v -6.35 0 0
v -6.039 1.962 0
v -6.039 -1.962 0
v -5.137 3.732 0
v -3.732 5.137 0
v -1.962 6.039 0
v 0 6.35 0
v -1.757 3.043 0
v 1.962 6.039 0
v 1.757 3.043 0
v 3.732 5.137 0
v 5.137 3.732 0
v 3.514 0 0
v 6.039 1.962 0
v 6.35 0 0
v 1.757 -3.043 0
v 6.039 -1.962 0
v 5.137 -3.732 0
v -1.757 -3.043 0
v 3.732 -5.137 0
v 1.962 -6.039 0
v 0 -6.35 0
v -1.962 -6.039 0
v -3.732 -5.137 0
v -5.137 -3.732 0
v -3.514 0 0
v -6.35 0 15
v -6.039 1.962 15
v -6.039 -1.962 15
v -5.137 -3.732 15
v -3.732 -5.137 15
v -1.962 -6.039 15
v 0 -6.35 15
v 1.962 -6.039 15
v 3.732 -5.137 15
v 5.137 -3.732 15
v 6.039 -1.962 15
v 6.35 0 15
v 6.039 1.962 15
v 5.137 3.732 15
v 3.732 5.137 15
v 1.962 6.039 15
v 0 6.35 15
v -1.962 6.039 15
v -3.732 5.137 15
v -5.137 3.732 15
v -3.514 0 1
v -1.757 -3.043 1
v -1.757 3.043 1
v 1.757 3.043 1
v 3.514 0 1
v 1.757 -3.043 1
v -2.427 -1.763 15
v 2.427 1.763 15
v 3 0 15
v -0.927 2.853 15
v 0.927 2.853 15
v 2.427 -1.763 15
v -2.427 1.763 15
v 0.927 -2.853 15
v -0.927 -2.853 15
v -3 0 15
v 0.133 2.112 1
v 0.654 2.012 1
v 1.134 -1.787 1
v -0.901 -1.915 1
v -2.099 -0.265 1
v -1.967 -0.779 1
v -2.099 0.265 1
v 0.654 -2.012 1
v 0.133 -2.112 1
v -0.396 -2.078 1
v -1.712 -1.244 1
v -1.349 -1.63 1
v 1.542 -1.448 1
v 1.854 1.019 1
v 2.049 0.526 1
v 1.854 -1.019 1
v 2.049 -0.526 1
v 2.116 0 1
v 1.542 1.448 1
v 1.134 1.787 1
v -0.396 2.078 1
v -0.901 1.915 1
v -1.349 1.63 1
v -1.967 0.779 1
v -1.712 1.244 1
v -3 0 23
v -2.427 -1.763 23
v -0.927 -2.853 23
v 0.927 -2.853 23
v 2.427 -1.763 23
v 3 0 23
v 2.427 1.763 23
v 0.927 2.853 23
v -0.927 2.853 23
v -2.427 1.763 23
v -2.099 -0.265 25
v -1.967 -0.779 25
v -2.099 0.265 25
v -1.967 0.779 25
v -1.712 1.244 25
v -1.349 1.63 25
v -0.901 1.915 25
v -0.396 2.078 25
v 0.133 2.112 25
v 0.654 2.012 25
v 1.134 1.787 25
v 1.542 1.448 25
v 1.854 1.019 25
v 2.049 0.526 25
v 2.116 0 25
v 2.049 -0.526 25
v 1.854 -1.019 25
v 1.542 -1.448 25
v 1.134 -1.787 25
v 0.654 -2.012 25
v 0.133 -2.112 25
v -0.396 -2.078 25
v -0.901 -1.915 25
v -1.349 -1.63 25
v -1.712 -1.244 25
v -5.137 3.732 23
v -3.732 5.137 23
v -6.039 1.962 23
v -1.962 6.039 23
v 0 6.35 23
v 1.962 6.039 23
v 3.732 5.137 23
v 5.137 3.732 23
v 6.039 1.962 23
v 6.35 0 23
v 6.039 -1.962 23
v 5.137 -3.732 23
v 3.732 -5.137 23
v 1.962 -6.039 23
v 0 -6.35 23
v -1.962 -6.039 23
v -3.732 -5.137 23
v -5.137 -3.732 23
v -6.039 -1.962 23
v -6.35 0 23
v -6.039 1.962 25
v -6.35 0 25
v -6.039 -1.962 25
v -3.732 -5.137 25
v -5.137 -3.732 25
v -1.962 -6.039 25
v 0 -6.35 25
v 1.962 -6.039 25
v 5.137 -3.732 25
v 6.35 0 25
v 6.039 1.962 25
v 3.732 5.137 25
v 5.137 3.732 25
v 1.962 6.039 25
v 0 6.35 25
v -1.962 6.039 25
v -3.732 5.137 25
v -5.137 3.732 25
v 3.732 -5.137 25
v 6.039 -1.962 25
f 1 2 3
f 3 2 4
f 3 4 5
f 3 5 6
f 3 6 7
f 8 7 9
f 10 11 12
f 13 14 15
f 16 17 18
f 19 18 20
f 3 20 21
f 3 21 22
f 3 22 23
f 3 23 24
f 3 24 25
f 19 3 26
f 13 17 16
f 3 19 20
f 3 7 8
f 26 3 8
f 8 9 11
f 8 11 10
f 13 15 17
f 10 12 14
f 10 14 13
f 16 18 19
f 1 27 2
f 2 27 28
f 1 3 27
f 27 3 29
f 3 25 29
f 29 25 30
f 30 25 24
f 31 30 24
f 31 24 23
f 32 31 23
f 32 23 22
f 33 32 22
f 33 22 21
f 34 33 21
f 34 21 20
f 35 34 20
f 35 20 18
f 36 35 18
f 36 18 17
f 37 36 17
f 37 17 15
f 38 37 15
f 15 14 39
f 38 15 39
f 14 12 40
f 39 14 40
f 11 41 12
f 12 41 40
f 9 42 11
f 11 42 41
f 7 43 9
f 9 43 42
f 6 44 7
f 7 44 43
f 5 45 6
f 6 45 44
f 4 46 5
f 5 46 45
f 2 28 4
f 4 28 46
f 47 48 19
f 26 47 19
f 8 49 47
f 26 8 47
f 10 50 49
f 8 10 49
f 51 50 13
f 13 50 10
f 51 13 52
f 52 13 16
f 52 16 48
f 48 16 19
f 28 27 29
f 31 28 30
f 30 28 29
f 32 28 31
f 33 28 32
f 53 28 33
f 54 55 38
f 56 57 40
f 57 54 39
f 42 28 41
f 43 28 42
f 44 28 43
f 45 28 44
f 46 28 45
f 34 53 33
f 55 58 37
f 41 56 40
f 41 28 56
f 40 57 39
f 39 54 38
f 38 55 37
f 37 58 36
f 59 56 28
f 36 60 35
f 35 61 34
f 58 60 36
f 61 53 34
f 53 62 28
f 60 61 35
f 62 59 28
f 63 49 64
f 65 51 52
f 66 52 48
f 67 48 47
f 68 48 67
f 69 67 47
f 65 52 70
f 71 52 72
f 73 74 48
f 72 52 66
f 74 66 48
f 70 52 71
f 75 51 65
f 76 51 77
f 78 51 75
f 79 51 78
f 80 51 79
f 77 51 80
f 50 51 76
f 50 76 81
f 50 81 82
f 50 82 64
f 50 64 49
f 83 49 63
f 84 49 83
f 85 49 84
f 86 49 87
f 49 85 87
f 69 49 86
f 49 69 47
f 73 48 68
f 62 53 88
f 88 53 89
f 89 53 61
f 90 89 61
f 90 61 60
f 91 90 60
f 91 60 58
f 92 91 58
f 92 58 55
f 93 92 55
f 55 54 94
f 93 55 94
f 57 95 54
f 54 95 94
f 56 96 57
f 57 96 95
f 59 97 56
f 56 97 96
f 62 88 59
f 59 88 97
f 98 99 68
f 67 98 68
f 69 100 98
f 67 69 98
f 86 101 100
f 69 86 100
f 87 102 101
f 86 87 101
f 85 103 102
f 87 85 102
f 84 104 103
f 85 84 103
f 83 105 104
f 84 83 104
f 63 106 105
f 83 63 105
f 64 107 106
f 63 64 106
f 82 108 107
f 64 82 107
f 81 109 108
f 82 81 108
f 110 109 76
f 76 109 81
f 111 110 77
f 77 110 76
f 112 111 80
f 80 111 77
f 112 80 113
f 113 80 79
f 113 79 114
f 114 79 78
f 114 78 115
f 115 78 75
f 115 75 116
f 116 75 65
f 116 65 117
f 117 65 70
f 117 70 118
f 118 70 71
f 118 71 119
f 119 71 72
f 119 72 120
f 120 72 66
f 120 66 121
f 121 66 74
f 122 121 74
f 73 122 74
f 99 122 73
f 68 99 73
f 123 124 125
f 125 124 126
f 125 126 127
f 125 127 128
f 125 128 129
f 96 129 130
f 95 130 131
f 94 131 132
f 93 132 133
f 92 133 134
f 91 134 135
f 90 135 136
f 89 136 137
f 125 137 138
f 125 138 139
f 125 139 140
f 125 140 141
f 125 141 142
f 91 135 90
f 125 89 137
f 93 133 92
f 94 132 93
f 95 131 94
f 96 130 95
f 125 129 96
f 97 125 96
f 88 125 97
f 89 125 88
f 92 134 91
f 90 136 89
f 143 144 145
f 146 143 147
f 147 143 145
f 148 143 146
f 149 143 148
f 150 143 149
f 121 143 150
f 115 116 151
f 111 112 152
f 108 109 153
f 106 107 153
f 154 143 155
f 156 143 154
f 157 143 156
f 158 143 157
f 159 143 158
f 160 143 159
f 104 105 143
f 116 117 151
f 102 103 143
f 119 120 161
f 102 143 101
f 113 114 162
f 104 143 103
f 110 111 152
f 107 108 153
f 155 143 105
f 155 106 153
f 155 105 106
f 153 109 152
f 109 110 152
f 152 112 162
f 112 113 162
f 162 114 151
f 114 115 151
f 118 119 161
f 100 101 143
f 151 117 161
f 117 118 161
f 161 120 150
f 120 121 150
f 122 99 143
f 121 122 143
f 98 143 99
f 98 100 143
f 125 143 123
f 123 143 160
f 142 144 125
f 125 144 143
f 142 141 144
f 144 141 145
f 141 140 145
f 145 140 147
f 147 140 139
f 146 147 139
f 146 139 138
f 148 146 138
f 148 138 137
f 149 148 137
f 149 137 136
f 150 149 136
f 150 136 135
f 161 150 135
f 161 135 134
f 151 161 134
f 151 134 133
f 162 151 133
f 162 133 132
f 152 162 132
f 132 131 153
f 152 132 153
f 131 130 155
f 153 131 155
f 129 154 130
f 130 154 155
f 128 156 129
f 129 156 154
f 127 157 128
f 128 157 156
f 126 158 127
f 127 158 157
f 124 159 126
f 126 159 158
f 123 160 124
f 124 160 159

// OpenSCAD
// file: myLibs.scad
pi= 3.14159265359;

module hole(diam, height, clearance= 0.1)
{
        fn= round(diam * pi / 0.5);
        cylinder(h= height, r=diam / 2 / cos(180 / fn) + clearance, $fn=fn);
}

module nutTrap(ffd, faces=6, height=1)
{
	cylinder(h= height, r=ffd / cos(180 / faces) / 2 + 0.05, $fn=faces);
}

// A slot which has rounded ends, but total length is l
module slot(d= 4, l= 8, ht= 1, clearance=0.1) {
	fn= round(d * pi / 0.5);
	rd= d / 2 / cos(180 / fn) + clearance;
	d1= rd*2;
	union() {
		translate([0,0,ht/2]) cube([l-d1, d1, ht], center=true);
		translate([-(l-d1)/2, 0, ht/2]) cylinder(h=ht, r=rd, $fn=fn, center=true); 
		translate([(l-d1)/2, 0, ht/2]) cylinder(h=ht, r=rd, $fn=fn, center=true); 
	}
	
}

/**
 * Standard right-angled triangle
 *
 * @param number o_len Lenght of the opposite side
 * @param number a_len Lenght of the adjacent side
 * @param number depth How wide/deep the triangle is in the 3rd dimension
 * @todo a better way ?
 */
module triangle(o_len, a_len, depth)
{
    linear_extrude(height=depth)
    {
        polygon(points=[[0,0],[a_len,0],[0,o_len]], paths=[[0,1,2]]);
    }
}
// main file
// spacer that allows be height adjustment
// usually made from aluminum and tapped to M4

include <myLibs.scad>

mm= 25.4;
h1= 15;
h2= 8;
h3= 2;
radius= 0.5*mm/2;
ir= 6/2;

difference() {
	union() {
		cylinder(r=radius, h=h1, center=false);
		translate([0, 0, h1]) cylinder(r=ir, h=h2, center=false);
		translate([0, 0, h1+h2]) cylinder(r=radius, h=h3, center=false);
	}
	translate([0, 0, -1])  hole(4, 30);
	nutTrap(6);
}
